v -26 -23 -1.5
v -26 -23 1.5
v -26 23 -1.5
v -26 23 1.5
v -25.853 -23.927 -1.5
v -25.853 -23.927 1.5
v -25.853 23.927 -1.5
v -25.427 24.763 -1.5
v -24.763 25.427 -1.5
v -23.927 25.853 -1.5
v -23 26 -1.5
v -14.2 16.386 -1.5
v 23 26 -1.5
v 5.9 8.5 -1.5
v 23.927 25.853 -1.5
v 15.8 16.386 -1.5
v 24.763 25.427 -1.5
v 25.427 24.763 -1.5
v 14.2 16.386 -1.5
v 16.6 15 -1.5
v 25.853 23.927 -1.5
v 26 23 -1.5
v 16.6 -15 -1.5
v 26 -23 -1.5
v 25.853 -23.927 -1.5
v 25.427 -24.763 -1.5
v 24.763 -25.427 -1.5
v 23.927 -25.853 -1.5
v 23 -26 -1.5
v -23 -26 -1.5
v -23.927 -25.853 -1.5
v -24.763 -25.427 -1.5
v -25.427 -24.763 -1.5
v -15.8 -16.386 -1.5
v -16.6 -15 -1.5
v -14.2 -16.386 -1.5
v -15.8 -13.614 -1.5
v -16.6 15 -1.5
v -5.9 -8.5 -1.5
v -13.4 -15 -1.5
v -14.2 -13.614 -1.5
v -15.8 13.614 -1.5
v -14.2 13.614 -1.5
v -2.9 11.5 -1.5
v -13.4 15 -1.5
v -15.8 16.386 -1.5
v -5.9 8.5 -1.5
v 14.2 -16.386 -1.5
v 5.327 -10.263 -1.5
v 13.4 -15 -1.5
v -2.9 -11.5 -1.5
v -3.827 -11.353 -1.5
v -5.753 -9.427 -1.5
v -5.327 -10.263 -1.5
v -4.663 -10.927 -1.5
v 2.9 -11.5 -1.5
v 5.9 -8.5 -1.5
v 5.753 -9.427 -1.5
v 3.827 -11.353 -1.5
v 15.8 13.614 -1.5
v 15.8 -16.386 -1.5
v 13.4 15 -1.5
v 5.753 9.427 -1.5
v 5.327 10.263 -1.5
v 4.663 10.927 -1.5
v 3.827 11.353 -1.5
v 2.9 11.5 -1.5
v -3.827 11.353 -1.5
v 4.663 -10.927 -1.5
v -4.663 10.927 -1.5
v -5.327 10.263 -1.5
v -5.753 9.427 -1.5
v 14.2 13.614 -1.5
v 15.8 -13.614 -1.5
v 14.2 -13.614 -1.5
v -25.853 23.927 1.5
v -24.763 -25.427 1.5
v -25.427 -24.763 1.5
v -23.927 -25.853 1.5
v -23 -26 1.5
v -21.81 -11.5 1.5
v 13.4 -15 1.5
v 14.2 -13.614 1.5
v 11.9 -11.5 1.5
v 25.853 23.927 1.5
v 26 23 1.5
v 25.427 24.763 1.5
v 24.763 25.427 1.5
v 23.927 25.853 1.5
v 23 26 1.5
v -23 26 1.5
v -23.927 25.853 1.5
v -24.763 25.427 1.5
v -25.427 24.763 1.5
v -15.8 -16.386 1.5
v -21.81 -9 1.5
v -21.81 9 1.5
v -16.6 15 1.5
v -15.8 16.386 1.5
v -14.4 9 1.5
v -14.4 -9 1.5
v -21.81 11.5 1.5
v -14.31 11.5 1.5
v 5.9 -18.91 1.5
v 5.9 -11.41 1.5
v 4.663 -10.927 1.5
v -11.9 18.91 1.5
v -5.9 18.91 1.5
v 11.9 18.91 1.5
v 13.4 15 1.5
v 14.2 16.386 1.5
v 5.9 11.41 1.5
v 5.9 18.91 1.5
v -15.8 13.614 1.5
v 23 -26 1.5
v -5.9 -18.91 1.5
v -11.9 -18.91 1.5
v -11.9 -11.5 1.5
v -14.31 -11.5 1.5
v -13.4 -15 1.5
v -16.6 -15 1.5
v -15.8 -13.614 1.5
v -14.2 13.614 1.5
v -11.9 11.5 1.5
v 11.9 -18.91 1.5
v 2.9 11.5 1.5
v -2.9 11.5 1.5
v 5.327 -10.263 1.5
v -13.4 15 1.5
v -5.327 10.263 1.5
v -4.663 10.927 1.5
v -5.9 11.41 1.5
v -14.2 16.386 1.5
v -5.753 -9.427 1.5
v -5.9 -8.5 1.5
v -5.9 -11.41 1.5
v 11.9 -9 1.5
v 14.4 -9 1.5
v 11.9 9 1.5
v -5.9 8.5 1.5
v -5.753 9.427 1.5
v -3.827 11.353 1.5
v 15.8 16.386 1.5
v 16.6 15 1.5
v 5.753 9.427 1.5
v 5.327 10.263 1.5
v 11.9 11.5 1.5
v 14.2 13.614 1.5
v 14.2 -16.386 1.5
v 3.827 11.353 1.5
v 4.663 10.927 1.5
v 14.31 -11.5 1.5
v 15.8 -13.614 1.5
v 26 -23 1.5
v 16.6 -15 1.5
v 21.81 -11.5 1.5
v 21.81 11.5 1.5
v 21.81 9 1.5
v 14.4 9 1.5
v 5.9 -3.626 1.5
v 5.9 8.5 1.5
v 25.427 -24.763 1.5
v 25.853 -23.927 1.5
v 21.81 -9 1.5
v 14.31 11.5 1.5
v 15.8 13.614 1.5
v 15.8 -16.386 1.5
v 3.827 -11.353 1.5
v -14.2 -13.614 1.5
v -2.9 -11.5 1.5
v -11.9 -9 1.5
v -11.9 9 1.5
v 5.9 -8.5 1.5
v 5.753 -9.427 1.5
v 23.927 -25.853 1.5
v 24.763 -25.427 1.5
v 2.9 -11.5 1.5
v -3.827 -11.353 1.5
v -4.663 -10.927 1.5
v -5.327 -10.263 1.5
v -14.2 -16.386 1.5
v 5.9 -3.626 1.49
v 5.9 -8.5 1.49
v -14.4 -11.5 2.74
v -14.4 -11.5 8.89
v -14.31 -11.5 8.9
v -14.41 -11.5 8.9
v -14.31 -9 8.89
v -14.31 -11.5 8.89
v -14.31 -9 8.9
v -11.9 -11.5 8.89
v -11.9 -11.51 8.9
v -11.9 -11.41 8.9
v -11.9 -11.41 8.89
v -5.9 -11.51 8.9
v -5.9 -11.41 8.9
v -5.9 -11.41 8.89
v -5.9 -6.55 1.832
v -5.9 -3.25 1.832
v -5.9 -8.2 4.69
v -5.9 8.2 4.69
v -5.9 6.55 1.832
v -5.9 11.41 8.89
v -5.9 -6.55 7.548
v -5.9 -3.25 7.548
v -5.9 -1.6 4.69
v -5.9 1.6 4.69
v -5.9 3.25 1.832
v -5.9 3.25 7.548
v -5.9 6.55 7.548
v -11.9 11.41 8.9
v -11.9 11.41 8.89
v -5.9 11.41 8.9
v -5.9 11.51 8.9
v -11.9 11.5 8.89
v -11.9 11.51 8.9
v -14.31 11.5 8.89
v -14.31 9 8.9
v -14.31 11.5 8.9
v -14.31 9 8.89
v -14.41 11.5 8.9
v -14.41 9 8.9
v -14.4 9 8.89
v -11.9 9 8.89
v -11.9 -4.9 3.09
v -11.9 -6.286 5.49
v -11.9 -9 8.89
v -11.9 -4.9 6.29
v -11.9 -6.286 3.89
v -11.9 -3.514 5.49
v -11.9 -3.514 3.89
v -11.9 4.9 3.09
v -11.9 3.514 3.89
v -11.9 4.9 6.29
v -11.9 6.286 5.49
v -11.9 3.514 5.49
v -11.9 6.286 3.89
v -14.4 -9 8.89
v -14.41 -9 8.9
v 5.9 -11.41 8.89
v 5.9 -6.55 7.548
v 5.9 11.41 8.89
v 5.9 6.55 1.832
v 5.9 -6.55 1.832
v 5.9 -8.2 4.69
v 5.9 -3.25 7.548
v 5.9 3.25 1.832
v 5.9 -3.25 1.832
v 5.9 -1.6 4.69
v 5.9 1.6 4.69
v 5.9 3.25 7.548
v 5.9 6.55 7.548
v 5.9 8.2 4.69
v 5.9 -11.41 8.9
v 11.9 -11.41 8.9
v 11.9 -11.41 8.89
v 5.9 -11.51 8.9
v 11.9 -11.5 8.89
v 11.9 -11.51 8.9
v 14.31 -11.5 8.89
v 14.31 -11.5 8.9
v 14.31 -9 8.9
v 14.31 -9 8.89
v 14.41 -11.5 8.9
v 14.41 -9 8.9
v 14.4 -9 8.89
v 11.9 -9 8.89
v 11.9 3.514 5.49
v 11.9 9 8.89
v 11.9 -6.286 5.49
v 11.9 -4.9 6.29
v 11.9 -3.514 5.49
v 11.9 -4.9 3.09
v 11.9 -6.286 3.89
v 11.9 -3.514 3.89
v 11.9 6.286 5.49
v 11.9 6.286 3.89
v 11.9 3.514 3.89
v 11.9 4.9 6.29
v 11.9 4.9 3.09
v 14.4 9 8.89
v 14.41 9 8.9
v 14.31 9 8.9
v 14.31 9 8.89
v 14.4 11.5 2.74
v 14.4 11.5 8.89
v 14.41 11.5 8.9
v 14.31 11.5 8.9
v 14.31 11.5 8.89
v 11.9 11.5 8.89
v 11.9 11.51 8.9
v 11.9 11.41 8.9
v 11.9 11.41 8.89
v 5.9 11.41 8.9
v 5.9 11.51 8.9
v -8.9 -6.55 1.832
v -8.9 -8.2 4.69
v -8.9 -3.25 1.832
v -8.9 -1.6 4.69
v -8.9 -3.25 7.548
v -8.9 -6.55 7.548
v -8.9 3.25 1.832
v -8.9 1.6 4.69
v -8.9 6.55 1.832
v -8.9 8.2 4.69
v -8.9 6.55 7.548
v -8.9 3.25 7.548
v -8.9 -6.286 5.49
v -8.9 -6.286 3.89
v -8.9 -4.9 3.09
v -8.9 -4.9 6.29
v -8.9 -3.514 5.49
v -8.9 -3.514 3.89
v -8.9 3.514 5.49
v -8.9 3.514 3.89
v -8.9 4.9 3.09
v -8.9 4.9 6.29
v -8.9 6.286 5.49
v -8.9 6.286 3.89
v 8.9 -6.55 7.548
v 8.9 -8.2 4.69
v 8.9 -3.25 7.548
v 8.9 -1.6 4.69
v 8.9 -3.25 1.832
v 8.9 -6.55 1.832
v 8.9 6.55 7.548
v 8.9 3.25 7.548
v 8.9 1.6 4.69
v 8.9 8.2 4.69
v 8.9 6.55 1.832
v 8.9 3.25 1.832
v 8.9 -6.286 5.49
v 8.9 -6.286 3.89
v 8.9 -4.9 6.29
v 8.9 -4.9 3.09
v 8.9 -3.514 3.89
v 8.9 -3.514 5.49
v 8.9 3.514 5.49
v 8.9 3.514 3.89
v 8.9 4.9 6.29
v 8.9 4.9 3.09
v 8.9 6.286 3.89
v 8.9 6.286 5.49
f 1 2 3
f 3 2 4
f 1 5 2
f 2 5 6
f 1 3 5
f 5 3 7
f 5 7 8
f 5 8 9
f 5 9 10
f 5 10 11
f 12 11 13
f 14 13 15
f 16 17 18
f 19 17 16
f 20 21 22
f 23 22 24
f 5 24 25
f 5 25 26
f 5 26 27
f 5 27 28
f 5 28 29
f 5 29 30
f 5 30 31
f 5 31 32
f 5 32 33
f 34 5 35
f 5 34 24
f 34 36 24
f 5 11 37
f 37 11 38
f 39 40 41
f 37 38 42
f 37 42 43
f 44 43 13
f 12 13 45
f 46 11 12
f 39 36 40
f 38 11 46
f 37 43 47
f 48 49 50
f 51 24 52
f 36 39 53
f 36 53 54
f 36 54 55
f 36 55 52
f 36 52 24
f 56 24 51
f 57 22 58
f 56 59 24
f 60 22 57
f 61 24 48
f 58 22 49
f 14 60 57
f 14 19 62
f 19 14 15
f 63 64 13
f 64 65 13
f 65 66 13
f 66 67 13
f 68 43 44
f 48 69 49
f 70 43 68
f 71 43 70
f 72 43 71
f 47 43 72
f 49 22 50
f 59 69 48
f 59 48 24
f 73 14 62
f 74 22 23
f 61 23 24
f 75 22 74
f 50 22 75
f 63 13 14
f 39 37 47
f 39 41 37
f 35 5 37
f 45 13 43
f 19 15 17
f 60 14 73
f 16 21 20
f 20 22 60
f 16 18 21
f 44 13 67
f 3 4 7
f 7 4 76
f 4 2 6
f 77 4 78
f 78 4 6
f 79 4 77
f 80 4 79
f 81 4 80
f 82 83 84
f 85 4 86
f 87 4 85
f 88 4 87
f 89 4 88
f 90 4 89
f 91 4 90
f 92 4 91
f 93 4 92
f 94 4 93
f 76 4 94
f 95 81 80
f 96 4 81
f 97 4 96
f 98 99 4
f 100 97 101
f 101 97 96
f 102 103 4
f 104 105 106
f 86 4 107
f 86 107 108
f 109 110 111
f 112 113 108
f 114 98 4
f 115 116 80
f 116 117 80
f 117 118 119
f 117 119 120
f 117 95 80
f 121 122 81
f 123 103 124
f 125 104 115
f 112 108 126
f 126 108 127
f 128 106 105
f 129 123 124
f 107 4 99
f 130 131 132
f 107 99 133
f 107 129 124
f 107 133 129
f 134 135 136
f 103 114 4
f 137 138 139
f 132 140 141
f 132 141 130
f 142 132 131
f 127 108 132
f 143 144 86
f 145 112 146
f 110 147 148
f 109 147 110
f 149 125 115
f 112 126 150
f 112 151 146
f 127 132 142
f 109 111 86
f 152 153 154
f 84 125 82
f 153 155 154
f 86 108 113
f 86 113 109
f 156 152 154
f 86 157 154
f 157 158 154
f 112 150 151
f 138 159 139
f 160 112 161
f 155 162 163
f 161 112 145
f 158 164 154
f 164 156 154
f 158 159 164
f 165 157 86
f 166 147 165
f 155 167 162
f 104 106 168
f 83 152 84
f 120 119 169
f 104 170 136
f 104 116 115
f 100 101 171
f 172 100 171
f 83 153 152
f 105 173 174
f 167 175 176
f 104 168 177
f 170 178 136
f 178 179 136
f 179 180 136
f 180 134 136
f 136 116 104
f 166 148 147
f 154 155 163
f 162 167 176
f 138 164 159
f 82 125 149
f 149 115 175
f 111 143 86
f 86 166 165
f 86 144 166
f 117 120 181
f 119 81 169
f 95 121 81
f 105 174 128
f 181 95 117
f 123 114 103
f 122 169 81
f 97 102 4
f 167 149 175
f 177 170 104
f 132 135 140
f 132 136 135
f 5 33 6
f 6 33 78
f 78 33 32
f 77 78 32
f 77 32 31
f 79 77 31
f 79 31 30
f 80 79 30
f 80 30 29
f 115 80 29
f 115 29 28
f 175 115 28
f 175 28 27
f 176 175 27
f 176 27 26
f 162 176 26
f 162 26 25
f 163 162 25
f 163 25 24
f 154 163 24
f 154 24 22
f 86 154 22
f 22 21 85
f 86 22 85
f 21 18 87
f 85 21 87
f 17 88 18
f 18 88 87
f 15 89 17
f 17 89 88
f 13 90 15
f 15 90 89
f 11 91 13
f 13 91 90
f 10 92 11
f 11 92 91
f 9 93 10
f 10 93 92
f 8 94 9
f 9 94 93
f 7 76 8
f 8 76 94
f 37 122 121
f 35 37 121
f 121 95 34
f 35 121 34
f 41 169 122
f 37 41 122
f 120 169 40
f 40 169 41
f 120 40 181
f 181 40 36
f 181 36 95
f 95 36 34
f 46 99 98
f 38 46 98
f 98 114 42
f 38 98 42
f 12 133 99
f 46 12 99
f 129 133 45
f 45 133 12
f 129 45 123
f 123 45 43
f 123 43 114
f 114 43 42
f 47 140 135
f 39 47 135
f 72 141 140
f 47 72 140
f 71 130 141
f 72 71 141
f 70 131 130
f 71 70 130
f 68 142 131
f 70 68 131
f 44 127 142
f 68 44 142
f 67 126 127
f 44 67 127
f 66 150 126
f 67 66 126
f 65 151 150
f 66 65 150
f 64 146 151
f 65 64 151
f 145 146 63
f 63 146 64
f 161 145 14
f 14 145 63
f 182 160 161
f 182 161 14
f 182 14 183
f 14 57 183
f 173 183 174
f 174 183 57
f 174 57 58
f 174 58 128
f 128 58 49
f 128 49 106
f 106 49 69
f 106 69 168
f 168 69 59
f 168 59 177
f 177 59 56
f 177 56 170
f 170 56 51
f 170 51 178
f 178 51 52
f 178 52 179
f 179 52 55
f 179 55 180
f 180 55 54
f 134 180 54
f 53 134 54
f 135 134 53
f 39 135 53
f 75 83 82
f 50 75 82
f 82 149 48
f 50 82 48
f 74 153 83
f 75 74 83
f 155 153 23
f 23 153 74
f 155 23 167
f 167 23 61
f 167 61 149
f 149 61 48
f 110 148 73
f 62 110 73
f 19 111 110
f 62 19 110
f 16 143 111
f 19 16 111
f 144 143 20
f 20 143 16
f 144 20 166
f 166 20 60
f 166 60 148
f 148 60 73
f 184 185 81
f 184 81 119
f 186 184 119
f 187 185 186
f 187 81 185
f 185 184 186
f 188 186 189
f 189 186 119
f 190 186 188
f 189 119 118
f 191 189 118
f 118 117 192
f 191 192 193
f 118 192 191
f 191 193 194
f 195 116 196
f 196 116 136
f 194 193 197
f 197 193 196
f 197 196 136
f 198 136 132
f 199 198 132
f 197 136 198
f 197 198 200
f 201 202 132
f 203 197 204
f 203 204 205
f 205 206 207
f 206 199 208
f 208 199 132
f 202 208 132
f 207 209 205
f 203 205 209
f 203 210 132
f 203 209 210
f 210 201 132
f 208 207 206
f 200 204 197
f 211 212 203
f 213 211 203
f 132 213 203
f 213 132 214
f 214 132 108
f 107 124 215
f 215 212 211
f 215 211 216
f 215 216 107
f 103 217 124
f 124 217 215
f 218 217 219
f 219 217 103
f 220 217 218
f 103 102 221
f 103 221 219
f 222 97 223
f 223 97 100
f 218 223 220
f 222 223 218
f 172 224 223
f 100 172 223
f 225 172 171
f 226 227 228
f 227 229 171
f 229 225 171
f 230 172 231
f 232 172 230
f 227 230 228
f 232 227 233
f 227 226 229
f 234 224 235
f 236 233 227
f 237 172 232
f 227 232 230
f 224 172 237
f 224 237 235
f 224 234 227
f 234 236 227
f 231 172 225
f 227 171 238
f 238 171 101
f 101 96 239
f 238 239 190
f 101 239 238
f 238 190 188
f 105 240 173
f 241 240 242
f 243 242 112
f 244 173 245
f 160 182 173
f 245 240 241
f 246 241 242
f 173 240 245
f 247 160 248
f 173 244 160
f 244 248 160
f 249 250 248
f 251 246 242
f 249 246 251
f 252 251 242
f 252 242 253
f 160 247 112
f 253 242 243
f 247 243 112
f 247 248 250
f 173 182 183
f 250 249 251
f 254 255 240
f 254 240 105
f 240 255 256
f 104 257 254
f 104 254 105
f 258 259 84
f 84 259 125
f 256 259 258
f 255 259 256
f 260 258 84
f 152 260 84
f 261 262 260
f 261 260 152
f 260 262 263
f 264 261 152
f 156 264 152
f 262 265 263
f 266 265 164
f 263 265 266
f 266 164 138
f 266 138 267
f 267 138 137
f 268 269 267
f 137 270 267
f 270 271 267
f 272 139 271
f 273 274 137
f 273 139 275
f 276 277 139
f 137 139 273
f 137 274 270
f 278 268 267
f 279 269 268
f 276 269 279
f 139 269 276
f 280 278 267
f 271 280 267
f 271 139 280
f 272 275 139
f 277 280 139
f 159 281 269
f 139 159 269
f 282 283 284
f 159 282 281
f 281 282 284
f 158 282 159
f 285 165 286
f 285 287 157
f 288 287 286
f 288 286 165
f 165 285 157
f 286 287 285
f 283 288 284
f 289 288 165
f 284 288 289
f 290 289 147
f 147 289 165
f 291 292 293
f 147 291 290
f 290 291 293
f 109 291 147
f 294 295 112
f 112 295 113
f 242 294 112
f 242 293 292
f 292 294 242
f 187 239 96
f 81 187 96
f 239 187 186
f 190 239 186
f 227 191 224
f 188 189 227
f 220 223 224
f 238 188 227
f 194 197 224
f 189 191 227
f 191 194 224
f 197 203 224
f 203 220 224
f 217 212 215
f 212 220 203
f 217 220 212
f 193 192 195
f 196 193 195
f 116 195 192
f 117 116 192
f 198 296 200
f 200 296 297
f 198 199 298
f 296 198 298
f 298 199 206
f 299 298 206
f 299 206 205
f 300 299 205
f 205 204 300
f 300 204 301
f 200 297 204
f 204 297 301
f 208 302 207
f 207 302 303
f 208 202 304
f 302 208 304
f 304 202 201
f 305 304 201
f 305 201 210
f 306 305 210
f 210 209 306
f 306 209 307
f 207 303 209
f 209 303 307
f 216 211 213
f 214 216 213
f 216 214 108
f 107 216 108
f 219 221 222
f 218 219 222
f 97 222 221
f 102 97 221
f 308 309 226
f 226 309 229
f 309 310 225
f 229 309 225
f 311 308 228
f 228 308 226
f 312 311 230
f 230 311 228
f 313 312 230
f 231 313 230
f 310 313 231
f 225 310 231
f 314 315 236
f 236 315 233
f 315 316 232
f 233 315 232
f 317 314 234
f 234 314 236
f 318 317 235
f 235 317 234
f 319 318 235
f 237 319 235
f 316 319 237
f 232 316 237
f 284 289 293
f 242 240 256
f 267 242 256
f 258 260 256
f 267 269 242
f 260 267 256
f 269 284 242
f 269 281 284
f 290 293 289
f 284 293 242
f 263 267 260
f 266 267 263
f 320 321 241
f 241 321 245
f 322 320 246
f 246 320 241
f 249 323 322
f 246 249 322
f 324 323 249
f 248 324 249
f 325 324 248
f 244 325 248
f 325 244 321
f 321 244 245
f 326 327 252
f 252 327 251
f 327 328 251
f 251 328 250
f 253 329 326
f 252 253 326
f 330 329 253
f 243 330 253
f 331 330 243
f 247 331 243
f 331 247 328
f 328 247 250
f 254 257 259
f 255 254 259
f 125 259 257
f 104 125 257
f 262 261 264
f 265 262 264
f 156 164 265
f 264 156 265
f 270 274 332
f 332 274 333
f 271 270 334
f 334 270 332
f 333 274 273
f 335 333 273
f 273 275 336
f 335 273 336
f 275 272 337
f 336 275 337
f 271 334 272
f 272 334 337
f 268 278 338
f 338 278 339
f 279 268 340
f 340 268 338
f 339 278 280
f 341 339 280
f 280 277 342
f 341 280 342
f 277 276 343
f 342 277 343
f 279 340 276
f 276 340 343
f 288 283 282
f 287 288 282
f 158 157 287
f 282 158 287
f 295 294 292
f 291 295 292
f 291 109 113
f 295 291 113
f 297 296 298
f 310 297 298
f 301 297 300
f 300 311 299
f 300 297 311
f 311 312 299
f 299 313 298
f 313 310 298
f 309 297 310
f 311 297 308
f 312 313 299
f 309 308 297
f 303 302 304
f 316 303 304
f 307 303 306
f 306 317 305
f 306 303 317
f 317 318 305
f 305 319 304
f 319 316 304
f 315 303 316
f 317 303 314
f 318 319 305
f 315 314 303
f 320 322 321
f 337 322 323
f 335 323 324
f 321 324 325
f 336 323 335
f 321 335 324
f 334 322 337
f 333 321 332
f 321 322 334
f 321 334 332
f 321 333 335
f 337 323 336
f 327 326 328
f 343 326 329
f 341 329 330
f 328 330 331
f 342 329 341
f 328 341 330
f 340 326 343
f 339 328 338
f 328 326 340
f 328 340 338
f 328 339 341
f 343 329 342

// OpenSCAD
// file: obiscad/attach.scad
//---------------------------------------------------------------
//-- Openscad Attachment library
//-- Attach easily parts. Make your designs more reusable
//---------------------------------------------------------------
//-- This is a component of the obiscad opescad tools by Obijuan
//-- (C) Juan Gonzalez-Gomez (Obijuan)
//-- Sep-2012
//---------------------------------------------------------------
//-- Released under the GPL license
//---------------------------------------------------------------

use <vector.scad>

module connector(c)
{
  p = c[0];
  v = c[1];
  ang = c[2];

  color("Gray") point(p);
  translate(p)
    color("Gray") vector(unitv(v)*6,l_arrow=2);
}


//-- a,b are connectors
module attach(a,b)
{
  //-- Get the data from the connectors
  vref = b[1];
  v = a[1];
  roll=a[2];
  pos1 = a[0];
  pos2 = b[0];

  //-------- Calculations for the "orientate operator"
  //-- Calculate the rotation axis
  raxis = cross(vref,v);
    
  //-- Calculate the angle between the vectors
  ang = anglev(vref,v);

  translate(pos1)
    //-- Orientate operator
    rotate(a=roll, v=v)  rotate(a=ang, v=raxis)
      translate(-pos2)
	child(0); 
}

module arm(debug=false)
{
  
  cube(asize,center=true);

  if (debug) {
    frame(l=10);
    connector(a);
  }
}

module Test()
{
  cube(size,center=true);
  attach(c1,a) arm(debug=true);
  attach(c2,a) arm();
}

//-- Main part
size = [10,10,10];
c1 = [ [0,0,size[2]/2], [0,0,1], 10];
c2 = [ [-size[0]/2,0,0], [-1,0,0], 90 ];

*connector(c1);
*connector(c2);
*cube(size,center=true);


//-- Attachable part
asize = [5,20,3];
a = [ [0,asize[1]/2-3,-asize[2]/2], [0,0,1], 0  ];

*translate([30,0,0])  arm(debug=true);

*attach(c1,a) arm();
*attach(c2,a) arm();
  

orientate([1,1,1])
Test();
// file: obiscad/bcube.scad
//------------------------------------------------------------------------------
//  Bevel edge cube.
//  (c) Juan Gonzalez-Gomez (Obijuan), Sep-2012
//------------------------------------------------------------------------------

//----------------- IMPLEMENTATION USING THE MINKOWSKI OPERATOR ----------------

//------------------------------------------------------------------------------
//-- Bevel Cube main function
//-- Parameters:
//--   * Size:  Cube size
//--   * cr : Corner radius (if cr==0, a standar cube is built)
//--   * cres:  Corner resolution (in points). cres=0 means flat corners
//------------------------------------------------------------------------------
module bcube(size,cr=0,cres=0)
{
  //-- Internal cube size
  bsize = size - 2*[cr,cr,0];

  //-- Get the (x,y) coorner coordinates in the 1st cuadrant
  x = bsize[0]/2;
  y = bsize[1]/2;

  //-- A corner radius of 0 means a standar cube!
  if (cr==0)
    cube(bsize,center=true);
  else {

      
      //-- The height of minkowski object is double. So
      //-- we sould scale by 0.5
      scale([1,1,0.5])

      //-- This translation is for centering the minkowski objet
      translate([-x, -y,0])

      //-- Built the  beveled cube with minkowski
      minkowski() {

        //-- Internal cube
        cube(bsize,center=true);

        //-- Cylinder in the corner (1st cuadrant)
        translate([x,y, 0])
          cylinder(r=cr, h=bsize[2],center=true, $fn=4*(cres+1));
      }
  }

}


//-- Examples of use of the bcube() module

//-- Standar cube
translate([-15,15,0])
bcube([20,20,10]);

//-- Beveled cube (0 point resolution)
translate([15,15,0])
  bcube([20,20,10],cr=4);

//-- Beveled cube (1 point resolution)
translate([-15,-15,0])
  bcube([20,20,10],cr=4, cres=1);

//-- Beveled cube (4 points resolution)
translate([15,-15,0])
  bcube([20,20,10],cr=4, cres=4);
// main file
//-----------------------------------------------------------------------
//-- REPYZ modules
//-----------------------------------------------------------------------
//-- (c) Juan Gonzalez-Gomez (Obijuan). May-2013
//-- REPYZ modules derives from:
//--
//--  REPY V1 (obijuan) http://www.thingiverse.com/thing:13442
//--  REPY v2, by David Estevez: https://github.com/David-Estevez/REPY-2.0
//-------------------------------------------------------------------------
//-- Released under the GPL license
//-------------------------------------------------------------------------

use <obiscad/bcube.scad>
use <obiscad/bevel.scad>
use <obiscad/attach.scad>

//-- Constants for indexing vector components
X = 0;
Y = 1;
Z = 2;

//------------------------------------------------------------------
//--       USER AREA.  Change the parameters to fit your needs
//------------------------------------------------------------------

//-------------  Base parameters
base_side = 52;
base_th = 3;      //-- Base thickness
base_cr = 3;      //-- Base corner radius
base_cres = 4;    //-- Base corner resolution

//------------ Servo parameters
ear_size = [2.5, 18, 7.4];  //-- Servo ears size

//-- Distance between the top and lower servo ears
ear_dx = 23.8;

//----------- Feet parameters 
foot_th = 6;
foot_ly = 23;           //-- Feet length in the y axis
foot_drill_diam = 3.2;  
foot_drill_h = 1.6;     //-- Drills height form the module base
foot_drill_dx_m = 6.6;  //-- Distance between the two drills

//--------- Captive nuts
nut_h = 3;
nut_radius = 6.6/2;   

//--- SKYMEGA Drills
sky_dd = 15;            //-- Distance
sky_drill_diam = 3.2;   //-- Drill diam

//------------------------------------------------------------------
//--    DATA AREA.  More parameters calculated from the user params
//------------------------------------------------------------------

//---------  BASE
base_size = [base_side, base_side, base_th];


//--------- Feet calculations
foot_size = [foot_th + ear_size[X], foot_ly, ear_size[Z]];

//-- Distance between the center of the two
//-- foot drills
foot_drill_dx = foot_drill_dx_m + foot_drill_diam;

//-- Distance between the two feet (along x axis)
feet_dx = ear_dx - 2 * foot_th;

//-- Feet location coordinates
foot_pos = [foot_size[X]/2 + feet_dx/2,
            0,
            foot_size[Z]/2 + base_size[Z]/2 - 0.01];
            
//-- temp value used for intersections
extra = 5;

//--- Create the skymega drill table
sky_drill_table = [
  [sky_dd, sky_dd, 0],
  [-sky_dd, sky_dd, 0],
  [-sky_dd, -sky_dd, 0],
  [sky_dd, -sky_dd, 0],
];


//--- Center cutouts
co1_size = [feet_dx, foot_size[Y], base_size[Z]+extra];

//-- Feet reinforment (in x direction)
//-- Define the connectors

//-- Reinforments x-direction thickness
rx_th = (foot_size[Y]-ear_size[Y])/2;
rx_pos = [-foot_size[X]/2, ear_size[Y]/2 + rx_th/2, -foot_size[Z]/2];

rx_ec1 = [ [rx_pos[X], rx_pos[Y], rx_pos[Z]], [0,1,0], 0];
rx_en1 = [ rx_ec1[0], [-1,0,1], 0];

rx_ec2 = [ [rx_pos[X], -rx_pos[Y], rx_pos[Z]], [0,-1,0], 0];
rx_en2 = [ rx_ec2[0], [-1,0,1], 0];


//-- Reinforments in the y direction
ry_th = foot_size[X] - ear_size[X];
ry_pos = [ear_size[X]/2, foot_size[Y]/2, -foot_size[Z]/2];

ry_ec1 = [ [ry_pos[X], ry_pos[Y], ry_pos[Z]], [-1,0,0], 0];
ry_en1 = [ ry_ec1[0], [0,1,1], 0];

ry_ec2 = [ [ry_pos[X], -ry_pos[Y], ry_pos[Z]], [1,0,0], 0];
ry_en2 = [ ry_ec2[0], [0,-1,1], 0];


//-- For debuging
*connector(rx_ec1);
*connector(rx_en1);
*connector(ry_ec4);
*connector(ry_en4);

//----------------------------------------------------------------------- 
//-                    PART building
//-----------------------------------------------------------------------

module foot()
{

  nut_co = nut_h + extra;
  
  ear_co_size = [ear_size[X]+extra, ear_size[Y], ear_size[Z]+extra];
  foot_drill_pos = [0, 
               foot_drill_dx/2, 
               -foot_size[Z]/2 + foot_drill_diam/2 + foot_drill_h];

  union() {
  
    //-- Foot
    difference() {
      //-- Main foot body
      cube(foot_size, center = true);
    
      //-- space for the servo ear
      translate([-ear_co_size[X]/2 - foot_size[X]/2 + ear_size[X],
		0,
		0])
      cube(ear_co_size, center = true);
      
      //-- Foot drills
      translate(foot_drill_pos)
      rotate([0, 90, 0])
      cylinder(r = foot_drill_diam/2, h = foot_size[X] + extra, center = true);

      translate([foot_drill_pos[X], -foot_drill_pos[Y], foot_drill_pos[Z]])
      rotate([0, 90, 0])
      cylinder(r = foot_drill_diam/2, h = foot_size[X] + extra, center = true);
      
      //-- Embebed nuts
      translate([nut_co/2 + foot_size[X]/2 - nut_h,
		foot_drill_dx/2,
		  foot_drill_pos[Z]])
      rotate([0,90,0])
      rotate([0,0,90])
      cylinder(r = nut_radius, h = nut_co, center = true, $fn=6);
  
      translate([nut_co/2 + foot_size[X]/2 - nut_h,
		-foot_drill_dx/2,
		  foot_drill_pos[Z]])
      rotate([0,90,0])
      rotate([0,0,90])
      cylinder(r = nut_radius, h = nut_co, center = true, $fn=6);
      
    }
  
    //-- X-reinforments
    bconcave_corner_attach(rx_ec1, rx_en1, l=rx_th, cr=foot_size[Z], cres=0, th=0.1);
    bconcave_corner_attach(rx_ec2, rx_en2, l=rx_th, cr=foot_size[Z], cres=0, th=0.1);

    //-- Y-reinforments
    bconcave_corner_attach(ry_ec1, ry_en1, l=ry_th, cr=foot_size[Z], cres=0, th=0.1);
    bconcave_corner_attach(ry_ec2, ry_en2, l=ry_th, cr=foot_size[Z], cres=0, th=0.1);
  
  }

}

module repyz_body()
{

  difference() {
    //-- The base
    bcube(base_size, cr = base_cr, cres = base_cres);
    
    //-- Skymega drills
    for (drill = sky_drill_table) {
      translate(drill)
	cylinder(r=sky_drill_diam/2, h=base_size[Z]+extra,center=true, $fn=6);
    }
    
    //-- Central cutout
    bcube(co1_size, cr = base_cr, cres = base_cres);

  }  
    
  //-- The feet

  //-- Right foot
  translate(foot_pos)
  rotate([0,0,180])
  foot();

  //-- Left foot
  translate([-foot_pos[X], foot_pos[Y], foot_pos[Z]])
  foot();
}


//----------------------------------------------------
//--    MAIN  
//----------------------------------------------------
repyz_body();
